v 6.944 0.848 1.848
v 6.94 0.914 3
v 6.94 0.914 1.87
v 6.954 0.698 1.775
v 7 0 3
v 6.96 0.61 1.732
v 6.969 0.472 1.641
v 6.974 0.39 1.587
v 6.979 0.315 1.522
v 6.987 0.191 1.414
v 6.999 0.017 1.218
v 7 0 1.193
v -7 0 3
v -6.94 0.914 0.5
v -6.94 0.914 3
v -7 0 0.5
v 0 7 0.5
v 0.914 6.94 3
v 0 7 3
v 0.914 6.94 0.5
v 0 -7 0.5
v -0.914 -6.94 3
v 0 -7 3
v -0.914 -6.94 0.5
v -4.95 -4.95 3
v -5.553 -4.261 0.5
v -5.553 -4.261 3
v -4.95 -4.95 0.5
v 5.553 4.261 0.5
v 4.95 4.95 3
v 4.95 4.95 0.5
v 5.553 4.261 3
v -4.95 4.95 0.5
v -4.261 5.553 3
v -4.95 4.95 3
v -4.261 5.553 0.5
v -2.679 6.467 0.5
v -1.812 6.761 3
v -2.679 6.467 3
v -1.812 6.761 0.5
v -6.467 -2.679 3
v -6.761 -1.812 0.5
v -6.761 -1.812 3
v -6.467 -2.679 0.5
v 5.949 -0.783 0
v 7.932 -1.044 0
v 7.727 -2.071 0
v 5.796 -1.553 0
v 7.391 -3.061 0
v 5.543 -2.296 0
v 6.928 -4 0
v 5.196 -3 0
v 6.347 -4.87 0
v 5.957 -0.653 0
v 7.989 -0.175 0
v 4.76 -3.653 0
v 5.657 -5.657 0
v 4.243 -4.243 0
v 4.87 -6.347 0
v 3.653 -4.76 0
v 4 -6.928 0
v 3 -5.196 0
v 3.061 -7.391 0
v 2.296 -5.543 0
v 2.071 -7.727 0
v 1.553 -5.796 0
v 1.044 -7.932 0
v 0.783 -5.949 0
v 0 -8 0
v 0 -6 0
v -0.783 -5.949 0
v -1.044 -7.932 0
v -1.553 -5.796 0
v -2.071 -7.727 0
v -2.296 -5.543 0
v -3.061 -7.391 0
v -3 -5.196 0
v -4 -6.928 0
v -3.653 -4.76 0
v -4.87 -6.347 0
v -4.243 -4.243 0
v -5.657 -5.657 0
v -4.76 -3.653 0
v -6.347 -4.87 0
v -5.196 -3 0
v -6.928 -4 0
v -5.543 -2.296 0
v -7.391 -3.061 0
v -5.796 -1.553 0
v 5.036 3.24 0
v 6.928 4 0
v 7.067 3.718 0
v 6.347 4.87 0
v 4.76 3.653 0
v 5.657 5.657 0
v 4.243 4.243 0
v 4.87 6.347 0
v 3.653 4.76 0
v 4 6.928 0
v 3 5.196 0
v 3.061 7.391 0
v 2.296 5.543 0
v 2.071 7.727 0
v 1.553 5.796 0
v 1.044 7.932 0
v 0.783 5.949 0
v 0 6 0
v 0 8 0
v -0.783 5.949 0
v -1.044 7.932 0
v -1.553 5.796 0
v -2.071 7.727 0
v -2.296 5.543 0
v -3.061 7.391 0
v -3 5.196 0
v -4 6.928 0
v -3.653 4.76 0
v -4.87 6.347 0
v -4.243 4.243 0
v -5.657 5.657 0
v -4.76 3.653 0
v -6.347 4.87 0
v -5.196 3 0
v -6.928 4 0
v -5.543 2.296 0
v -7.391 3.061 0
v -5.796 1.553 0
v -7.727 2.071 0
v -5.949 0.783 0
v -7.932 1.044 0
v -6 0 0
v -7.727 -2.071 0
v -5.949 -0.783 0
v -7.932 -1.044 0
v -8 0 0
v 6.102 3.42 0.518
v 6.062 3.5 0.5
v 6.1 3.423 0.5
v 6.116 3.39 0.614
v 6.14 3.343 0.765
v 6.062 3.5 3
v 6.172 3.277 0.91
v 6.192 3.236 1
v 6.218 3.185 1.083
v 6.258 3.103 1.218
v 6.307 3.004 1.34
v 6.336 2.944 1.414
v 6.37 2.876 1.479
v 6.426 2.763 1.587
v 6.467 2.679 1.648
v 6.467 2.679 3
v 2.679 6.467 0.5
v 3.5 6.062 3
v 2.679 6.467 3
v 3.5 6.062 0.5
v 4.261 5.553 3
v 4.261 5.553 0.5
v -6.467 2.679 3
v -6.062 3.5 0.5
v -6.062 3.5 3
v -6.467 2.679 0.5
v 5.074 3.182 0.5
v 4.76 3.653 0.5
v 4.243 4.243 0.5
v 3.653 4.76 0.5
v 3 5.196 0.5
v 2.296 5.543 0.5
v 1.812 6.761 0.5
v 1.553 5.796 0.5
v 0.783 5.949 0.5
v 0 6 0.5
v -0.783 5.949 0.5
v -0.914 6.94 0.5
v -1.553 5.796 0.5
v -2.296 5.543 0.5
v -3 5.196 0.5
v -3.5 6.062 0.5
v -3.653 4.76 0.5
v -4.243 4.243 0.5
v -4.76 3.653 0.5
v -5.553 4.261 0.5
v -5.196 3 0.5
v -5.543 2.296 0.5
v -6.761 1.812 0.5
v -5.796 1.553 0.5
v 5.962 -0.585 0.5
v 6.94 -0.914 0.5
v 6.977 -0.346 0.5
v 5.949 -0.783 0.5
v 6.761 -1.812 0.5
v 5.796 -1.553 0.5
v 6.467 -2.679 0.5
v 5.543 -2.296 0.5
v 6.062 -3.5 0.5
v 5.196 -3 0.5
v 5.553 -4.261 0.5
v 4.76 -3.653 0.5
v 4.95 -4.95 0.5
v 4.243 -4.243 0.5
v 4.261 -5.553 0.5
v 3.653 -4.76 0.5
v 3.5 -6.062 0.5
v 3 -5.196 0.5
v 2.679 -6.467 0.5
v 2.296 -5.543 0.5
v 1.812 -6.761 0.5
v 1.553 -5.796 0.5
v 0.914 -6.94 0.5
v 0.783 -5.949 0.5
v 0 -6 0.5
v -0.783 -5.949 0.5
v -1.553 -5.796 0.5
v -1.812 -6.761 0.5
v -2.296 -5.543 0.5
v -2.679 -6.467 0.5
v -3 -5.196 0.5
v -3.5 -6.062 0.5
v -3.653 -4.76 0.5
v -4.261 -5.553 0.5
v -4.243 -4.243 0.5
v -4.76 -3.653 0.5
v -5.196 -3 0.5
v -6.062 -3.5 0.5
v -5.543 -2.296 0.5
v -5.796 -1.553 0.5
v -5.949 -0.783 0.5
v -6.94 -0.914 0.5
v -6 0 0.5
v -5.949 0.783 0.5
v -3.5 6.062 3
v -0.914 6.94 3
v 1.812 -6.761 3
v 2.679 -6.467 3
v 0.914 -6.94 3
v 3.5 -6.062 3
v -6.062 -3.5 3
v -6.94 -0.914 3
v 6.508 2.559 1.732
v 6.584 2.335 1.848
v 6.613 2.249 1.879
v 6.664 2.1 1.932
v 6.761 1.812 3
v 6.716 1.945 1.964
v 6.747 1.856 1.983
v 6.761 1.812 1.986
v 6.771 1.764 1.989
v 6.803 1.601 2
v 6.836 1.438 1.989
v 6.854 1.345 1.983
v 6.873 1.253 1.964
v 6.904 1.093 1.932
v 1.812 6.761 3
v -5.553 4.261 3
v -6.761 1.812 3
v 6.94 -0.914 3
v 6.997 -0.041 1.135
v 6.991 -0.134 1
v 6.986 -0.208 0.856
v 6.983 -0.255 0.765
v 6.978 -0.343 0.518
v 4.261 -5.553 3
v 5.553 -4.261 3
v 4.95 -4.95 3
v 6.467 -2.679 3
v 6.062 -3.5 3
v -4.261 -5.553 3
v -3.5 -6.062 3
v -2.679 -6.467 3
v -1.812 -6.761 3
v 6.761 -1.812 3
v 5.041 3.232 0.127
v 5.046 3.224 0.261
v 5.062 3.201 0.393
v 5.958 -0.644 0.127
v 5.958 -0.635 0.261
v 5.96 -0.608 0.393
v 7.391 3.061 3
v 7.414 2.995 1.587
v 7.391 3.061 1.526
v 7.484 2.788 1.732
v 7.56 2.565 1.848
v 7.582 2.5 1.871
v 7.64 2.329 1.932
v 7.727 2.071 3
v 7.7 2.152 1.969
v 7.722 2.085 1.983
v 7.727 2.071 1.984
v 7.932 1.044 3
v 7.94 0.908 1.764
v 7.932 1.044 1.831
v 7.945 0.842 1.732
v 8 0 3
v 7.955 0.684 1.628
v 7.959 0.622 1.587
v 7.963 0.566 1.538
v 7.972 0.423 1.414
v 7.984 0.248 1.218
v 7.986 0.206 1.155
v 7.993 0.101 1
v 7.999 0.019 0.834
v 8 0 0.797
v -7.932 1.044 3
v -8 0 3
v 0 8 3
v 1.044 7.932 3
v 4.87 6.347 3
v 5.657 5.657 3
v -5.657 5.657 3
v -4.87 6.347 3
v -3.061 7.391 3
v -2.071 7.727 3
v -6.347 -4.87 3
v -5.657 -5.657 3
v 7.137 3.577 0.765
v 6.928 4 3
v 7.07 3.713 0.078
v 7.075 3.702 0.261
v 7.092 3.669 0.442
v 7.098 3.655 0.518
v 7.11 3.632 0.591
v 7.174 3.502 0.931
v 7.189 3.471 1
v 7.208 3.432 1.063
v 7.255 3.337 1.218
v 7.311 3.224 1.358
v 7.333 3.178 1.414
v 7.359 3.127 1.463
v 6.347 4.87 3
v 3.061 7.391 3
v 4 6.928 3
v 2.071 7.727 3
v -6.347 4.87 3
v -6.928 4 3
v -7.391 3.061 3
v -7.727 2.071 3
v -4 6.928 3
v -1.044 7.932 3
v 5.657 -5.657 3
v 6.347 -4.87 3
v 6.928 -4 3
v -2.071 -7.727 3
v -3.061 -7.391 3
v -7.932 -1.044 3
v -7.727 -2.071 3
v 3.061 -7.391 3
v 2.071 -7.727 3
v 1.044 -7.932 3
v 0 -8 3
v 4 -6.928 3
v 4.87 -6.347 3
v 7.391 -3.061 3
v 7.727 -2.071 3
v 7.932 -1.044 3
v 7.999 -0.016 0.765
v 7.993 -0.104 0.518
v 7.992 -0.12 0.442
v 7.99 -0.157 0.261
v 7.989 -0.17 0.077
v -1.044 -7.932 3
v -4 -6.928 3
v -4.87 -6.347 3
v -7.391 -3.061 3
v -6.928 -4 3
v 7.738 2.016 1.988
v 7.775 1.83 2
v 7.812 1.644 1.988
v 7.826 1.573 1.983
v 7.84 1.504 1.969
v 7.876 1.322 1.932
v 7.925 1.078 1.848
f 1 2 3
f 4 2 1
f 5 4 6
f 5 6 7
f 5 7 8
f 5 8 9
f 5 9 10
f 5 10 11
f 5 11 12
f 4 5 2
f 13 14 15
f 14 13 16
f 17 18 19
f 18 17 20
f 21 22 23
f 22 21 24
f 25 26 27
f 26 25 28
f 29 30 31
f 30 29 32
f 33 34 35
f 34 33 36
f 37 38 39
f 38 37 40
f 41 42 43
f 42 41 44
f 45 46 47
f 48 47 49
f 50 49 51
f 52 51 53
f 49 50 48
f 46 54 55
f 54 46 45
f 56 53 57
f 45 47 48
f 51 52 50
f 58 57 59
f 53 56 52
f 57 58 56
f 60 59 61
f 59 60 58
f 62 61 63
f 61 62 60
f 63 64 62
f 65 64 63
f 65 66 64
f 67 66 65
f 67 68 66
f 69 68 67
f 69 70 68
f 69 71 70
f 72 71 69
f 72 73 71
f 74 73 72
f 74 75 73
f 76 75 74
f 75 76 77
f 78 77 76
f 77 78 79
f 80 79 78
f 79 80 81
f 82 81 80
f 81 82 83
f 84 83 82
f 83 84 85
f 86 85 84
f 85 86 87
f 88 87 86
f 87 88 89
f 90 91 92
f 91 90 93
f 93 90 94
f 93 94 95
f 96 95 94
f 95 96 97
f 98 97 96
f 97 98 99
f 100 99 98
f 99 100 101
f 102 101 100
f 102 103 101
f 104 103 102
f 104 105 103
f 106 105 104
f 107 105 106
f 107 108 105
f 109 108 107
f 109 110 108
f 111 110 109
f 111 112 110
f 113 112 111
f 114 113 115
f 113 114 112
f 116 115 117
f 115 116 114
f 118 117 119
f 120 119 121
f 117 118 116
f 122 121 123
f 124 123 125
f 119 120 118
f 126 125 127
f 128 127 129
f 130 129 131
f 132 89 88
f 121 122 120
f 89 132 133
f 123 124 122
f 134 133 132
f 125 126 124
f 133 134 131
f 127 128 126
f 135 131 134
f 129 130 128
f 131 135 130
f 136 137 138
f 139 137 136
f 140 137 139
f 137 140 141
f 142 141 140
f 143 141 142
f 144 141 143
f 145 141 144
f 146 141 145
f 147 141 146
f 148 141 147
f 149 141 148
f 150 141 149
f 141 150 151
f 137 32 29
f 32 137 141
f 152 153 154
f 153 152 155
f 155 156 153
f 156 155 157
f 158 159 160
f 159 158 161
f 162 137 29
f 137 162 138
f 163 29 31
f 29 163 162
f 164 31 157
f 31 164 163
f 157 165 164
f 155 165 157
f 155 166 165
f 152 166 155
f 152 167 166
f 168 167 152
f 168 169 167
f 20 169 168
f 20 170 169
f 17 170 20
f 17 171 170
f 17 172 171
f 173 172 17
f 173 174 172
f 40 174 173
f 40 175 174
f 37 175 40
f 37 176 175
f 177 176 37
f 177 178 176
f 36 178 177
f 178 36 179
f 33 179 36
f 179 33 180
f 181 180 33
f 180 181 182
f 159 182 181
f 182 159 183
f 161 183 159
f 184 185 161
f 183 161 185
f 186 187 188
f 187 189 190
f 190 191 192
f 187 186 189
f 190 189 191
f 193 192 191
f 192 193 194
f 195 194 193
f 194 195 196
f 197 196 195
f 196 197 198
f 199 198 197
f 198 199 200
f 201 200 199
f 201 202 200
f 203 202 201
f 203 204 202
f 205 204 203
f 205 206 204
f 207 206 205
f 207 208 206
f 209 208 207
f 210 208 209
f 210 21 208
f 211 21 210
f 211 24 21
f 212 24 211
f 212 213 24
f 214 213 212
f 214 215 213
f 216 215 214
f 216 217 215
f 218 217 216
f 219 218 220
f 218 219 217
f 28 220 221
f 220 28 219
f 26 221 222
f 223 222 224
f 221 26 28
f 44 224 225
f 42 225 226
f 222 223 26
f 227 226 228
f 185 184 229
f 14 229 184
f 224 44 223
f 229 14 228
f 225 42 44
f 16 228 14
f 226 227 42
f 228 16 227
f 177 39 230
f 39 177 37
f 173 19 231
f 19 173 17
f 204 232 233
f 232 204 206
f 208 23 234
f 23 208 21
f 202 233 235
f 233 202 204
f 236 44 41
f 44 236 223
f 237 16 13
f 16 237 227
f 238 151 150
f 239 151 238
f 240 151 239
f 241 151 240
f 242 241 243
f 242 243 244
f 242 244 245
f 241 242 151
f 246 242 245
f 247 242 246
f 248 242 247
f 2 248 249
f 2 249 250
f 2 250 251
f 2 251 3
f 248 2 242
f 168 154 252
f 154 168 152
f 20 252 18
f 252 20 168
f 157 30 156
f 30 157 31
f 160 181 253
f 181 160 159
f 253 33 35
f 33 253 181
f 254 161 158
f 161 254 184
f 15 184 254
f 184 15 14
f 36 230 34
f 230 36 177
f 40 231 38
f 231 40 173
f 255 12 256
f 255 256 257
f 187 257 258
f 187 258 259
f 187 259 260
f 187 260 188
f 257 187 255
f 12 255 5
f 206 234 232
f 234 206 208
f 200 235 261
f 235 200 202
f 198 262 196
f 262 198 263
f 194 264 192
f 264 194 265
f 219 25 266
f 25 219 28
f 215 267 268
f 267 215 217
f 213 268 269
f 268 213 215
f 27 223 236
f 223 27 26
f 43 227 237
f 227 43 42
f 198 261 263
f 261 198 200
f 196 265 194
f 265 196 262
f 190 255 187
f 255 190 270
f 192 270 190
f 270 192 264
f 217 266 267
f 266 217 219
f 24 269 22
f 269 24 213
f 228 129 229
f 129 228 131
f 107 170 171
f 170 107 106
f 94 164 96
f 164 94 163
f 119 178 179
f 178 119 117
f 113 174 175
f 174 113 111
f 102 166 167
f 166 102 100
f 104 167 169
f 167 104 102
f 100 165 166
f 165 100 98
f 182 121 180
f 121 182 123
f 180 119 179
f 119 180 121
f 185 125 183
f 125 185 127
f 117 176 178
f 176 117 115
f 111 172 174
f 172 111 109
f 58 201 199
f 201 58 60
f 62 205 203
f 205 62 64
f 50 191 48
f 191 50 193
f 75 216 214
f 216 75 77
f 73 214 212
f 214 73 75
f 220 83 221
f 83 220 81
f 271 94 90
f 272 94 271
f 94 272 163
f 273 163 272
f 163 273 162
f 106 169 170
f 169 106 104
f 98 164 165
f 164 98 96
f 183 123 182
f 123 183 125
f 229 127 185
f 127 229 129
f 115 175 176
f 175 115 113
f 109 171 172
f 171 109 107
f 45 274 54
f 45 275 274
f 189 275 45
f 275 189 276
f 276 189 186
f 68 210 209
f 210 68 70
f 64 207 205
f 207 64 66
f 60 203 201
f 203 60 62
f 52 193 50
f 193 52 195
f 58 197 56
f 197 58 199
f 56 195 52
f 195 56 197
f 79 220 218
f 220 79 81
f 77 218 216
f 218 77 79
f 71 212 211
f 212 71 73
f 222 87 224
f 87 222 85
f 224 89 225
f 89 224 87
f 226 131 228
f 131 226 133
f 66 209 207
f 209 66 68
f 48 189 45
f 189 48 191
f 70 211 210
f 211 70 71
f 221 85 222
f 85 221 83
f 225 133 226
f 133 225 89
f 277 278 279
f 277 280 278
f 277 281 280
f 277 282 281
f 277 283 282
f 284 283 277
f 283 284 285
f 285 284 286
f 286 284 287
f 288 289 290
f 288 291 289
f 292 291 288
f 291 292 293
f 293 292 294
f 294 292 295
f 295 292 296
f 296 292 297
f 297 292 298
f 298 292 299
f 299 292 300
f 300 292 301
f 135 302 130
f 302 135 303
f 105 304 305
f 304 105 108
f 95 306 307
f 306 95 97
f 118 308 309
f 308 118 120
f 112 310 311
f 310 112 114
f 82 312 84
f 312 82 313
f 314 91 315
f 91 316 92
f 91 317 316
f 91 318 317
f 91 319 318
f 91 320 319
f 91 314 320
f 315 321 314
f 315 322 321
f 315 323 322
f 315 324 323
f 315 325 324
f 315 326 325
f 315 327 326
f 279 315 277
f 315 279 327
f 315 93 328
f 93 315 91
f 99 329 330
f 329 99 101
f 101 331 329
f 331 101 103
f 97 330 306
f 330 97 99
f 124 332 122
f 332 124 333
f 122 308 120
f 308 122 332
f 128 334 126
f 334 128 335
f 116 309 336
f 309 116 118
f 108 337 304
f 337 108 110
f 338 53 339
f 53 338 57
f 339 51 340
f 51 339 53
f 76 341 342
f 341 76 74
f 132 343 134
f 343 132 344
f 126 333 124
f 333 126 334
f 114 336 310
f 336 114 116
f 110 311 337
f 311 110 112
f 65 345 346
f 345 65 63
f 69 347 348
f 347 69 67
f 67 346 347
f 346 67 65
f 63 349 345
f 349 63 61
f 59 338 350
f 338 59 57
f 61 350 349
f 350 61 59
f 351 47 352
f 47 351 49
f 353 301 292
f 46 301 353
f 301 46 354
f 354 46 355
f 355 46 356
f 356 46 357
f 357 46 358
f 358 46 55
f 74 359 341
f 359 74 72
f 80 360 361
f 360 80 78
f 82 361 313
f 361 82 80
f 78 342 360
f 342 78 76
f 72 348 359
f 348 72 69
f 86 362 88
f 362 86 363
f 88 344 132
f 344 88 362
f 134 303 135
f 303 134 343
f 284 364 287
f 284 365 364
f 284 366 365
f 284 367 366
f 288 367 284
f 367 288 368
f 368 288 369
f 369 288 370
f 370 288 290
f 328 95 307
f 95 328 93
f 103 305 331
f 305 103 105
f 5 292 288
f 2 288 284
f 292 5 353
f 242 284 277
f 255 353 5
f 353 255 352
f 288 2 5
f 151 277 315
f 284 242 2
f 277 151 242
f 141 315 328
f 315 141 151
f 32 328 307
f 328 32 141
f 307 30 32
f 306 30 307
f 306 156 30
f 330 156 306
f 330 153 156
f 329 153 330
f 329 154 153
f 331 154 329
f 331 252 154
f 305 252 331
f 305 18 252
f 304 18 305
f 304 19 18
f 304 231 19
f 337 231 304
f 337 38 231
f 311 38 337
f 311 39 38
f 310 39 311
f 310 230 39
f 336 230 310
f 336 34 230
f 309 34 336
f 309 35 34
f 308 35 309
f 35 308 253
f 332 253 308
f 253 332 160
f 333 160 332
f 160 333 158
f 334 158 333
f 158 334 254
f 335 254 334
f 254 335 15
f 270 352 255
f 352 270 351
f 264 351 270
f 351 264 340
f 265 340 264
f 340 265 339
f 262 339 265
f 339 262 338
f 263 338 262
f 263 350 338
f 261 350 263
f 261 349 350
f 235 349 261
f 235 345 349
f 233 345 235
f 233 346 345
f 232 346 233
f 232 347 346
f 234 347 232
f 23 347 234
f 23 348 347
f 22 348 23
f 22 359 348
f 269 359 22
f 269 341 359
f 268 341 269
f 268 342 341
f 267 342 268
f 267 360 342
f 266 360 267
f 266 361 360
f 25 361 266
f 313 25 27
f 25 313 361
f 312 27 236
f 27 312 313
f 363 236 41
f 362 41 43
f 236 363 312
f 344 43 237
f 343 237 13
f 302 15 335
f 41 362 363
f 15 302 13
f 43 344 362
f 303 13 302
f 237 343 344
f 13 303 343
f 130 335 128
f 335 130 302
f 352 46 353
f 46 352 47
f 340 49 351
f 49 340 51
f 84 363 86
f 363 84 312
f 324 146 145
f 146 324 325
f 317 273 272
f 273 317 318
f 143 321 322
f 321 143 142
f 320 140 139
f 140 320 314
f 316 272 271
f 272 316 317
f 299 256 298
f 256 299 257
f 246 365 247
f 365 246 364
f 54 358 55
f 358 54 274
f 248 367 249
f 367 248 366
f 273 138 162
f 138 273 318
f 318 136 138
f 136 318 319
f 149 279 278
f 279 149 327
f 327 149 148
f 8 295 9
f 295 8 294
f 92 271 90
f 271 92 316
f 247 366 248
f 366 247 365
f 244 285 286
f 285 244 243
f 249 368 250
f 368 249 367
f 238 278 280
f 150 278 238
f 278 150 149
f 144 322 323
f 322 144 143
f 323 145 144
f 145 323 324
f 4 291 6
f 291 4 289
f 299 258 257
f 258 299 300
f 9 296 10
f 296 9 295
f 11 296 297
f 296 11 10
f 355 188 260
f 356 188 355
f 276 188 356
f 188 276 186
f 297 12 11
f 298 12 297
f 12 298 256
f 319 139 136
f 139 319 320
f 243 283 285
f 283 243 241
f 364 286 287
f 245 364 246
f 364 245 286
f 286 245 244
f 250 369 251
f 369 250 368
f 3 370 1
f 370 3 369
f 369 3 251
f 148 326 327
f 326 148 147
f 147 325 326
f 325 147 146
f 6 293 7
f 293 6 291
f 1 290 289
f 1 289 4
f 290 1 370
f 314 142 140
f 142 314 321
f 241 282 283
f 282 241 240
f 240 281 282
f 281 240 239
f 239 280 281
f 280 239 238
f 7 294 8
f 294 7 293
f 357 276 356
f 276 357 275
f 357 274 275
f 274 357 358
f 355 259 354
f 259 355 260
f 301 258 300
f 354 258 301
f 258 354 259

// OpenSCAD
// file: ../build_environments.scad
// build_environments.scad: modules to build level sections
//

module pool(diameter=10.0, wall_height=2.0, step_width=3.0, connections=[])
{
    difference() {
        union() {
        difference() {
            cylinder(h=0.5,r1=diameter+step_width,r2=diameter+step_width,$fn=48);
            translate([0,0,-0.1])
                cylinder(h=0.7,r1=diameter,r2=diameter,$fn=48);
        }
        difference() {
            cylinder(h=wall_height,r1=diameter+step_width+1.0,r2=diameter+step_width+1.0,$fn=48);
            translate([0,0,-0.1])
                cylinder(h=wall_height+0.2,r1=diameter+step_width,r2=diameter+step_width,$fn=48);
        }
        }
    
        for (c = connections)
        {
            rotate([0,90,0]) {
                angle = atan2(c[1],c[0]);
                rotate([-angle,0,0]) {
                    cylinder(h=diameter+5.0,r1=c[2],r2=c[2],$fn=48);
                }
            }
        }
    }
}

module straight(length=10.0, width=2.0, dy1=0.0, dy2=0.0, dz=0.0)
{
    dims = [0, 0, 0, 0, 0, (dz/length)];
    matrix = [
        [ 1, dims[0], dims[1], 0 ],
        [ dims[2], 1, dims[4], 0 ],
        [ dims[5], dims[3], 1, 0 ],
        [ 0, 0, 0, 1 ]
    ];
    multmatrix(matrix)
    difference() {
        translate([dy1,0,0])
        union() {
            rotate([0,90,0]) {
                difference() {
                    cylinder(h=(length-dy1-dy2),r1=width+1.0,r2=width+1.0,$fn=24);
                    translate([0,0,-0.1])
                        cylinder(h=(length-dy1-dy2+0.2),r1=width,r2=width,$fn=24);
                }
                difference() {
                    cylinder(h=1.0,r1=width+2.0,r2=width+2.0,$fn=24);
                    translate([0,0,-0.1])
                        cylinder(h=1.2,r1=width,r2=width,$fn=24);
                }
                translate([0,0,(length-dy1-dy2)-1.0]) {
                    difference() {
                        cylinder(h=1.0,r1=width+2.0,r2=width+2.0,$fn=24);
                        translate([0,0,-0.1])
                            cylinder(h=1.2,r1=width,r2=width,$fn=24);
                    }
                }
            }
        }
        translate([0,0,-(2*width+4.0)/2])
            cube([3*length,3*length,2*width+4.0],center=true);
    }
}

module curve(p0=[0,0], center=[0,0], dir=1, angle=0.0, width=2.0)
{
    radius = sqrt((p0[0]-center[0])*(p0[0]-center[0]) + (p0[1]-center[1])*(p0[1]-center[1]));
    if (dir == 0) {
        difference() {
            rotate([0,0,-90])
            difference() {
                rotate_extrude(angle = angle, convexity = 10, $fn=32)
                    translate([radius, 0, 0])
                        circle(r = width+1.0,$fn=24);
                rotate([0,0,-1.0])
                    rotate_extrude(angle = angle+2.0, convexity = 10, $fn=32)
                        translate([radius, 0, 0])
                            circle(r = width,$fn=24);
            }
            translate([0,0,-(2*width+4.0)/2])
                cube([5*radius,5*radius,2*width+4.0],center=true);
        }
    }
    else {
        difference() {
            rotate([0,0,90])
            difference() {
                rotate_extrude(angle = -angle, convexity = 10, $fn=32)
                    translate([radius, 0, 0])
                        circle(r = width+1.0,$fn=24);
                rotate([0,0,1.0])
                    rotate_extrude(angle = -angle-2.0, convexity = 10, $fn=32)
                        translate([radius, 0, 0])
                            circle(r = width,$fn=24);
            }
            translate([0,0,-(2*width+4.0)/2])
                cube([5*radius,5*radius,2*width+4.0],center=true);
        }
    }

}

// test pool
//pool(diameter=12.0000, wall_height=3.0000, step_width=3.0000, connections=[[0.0000,-26.0000,2.0000], [23.6074,0.0000,2.0000]]);

// test straight, slope
//straight(length=26.0000, width=2.0000, dy1=11.8322, dy2=6.7082, dz=0.0000);
//straight(length=29.1549, width=12.0000, dy1=0.0000, dy2=0.0000, dz=-15.0000);

// test curve
//curve(p0=[23.6074, 0.0000], center=[23.6074, 5.0000], dir=0, angle=60.1011, width=2.0000);
//curve(p0=[33.6426, 12.4219], center=[37.9771, 9.9295], dir=1, angle=120.4627, width=2.0000);
// main file
use <../build_environments.scad>;
pool(diameter=6.0000, wall_height=3.0000, step_width=1.0000, connections=[[17.0000,4.0000,2.0000]]);
